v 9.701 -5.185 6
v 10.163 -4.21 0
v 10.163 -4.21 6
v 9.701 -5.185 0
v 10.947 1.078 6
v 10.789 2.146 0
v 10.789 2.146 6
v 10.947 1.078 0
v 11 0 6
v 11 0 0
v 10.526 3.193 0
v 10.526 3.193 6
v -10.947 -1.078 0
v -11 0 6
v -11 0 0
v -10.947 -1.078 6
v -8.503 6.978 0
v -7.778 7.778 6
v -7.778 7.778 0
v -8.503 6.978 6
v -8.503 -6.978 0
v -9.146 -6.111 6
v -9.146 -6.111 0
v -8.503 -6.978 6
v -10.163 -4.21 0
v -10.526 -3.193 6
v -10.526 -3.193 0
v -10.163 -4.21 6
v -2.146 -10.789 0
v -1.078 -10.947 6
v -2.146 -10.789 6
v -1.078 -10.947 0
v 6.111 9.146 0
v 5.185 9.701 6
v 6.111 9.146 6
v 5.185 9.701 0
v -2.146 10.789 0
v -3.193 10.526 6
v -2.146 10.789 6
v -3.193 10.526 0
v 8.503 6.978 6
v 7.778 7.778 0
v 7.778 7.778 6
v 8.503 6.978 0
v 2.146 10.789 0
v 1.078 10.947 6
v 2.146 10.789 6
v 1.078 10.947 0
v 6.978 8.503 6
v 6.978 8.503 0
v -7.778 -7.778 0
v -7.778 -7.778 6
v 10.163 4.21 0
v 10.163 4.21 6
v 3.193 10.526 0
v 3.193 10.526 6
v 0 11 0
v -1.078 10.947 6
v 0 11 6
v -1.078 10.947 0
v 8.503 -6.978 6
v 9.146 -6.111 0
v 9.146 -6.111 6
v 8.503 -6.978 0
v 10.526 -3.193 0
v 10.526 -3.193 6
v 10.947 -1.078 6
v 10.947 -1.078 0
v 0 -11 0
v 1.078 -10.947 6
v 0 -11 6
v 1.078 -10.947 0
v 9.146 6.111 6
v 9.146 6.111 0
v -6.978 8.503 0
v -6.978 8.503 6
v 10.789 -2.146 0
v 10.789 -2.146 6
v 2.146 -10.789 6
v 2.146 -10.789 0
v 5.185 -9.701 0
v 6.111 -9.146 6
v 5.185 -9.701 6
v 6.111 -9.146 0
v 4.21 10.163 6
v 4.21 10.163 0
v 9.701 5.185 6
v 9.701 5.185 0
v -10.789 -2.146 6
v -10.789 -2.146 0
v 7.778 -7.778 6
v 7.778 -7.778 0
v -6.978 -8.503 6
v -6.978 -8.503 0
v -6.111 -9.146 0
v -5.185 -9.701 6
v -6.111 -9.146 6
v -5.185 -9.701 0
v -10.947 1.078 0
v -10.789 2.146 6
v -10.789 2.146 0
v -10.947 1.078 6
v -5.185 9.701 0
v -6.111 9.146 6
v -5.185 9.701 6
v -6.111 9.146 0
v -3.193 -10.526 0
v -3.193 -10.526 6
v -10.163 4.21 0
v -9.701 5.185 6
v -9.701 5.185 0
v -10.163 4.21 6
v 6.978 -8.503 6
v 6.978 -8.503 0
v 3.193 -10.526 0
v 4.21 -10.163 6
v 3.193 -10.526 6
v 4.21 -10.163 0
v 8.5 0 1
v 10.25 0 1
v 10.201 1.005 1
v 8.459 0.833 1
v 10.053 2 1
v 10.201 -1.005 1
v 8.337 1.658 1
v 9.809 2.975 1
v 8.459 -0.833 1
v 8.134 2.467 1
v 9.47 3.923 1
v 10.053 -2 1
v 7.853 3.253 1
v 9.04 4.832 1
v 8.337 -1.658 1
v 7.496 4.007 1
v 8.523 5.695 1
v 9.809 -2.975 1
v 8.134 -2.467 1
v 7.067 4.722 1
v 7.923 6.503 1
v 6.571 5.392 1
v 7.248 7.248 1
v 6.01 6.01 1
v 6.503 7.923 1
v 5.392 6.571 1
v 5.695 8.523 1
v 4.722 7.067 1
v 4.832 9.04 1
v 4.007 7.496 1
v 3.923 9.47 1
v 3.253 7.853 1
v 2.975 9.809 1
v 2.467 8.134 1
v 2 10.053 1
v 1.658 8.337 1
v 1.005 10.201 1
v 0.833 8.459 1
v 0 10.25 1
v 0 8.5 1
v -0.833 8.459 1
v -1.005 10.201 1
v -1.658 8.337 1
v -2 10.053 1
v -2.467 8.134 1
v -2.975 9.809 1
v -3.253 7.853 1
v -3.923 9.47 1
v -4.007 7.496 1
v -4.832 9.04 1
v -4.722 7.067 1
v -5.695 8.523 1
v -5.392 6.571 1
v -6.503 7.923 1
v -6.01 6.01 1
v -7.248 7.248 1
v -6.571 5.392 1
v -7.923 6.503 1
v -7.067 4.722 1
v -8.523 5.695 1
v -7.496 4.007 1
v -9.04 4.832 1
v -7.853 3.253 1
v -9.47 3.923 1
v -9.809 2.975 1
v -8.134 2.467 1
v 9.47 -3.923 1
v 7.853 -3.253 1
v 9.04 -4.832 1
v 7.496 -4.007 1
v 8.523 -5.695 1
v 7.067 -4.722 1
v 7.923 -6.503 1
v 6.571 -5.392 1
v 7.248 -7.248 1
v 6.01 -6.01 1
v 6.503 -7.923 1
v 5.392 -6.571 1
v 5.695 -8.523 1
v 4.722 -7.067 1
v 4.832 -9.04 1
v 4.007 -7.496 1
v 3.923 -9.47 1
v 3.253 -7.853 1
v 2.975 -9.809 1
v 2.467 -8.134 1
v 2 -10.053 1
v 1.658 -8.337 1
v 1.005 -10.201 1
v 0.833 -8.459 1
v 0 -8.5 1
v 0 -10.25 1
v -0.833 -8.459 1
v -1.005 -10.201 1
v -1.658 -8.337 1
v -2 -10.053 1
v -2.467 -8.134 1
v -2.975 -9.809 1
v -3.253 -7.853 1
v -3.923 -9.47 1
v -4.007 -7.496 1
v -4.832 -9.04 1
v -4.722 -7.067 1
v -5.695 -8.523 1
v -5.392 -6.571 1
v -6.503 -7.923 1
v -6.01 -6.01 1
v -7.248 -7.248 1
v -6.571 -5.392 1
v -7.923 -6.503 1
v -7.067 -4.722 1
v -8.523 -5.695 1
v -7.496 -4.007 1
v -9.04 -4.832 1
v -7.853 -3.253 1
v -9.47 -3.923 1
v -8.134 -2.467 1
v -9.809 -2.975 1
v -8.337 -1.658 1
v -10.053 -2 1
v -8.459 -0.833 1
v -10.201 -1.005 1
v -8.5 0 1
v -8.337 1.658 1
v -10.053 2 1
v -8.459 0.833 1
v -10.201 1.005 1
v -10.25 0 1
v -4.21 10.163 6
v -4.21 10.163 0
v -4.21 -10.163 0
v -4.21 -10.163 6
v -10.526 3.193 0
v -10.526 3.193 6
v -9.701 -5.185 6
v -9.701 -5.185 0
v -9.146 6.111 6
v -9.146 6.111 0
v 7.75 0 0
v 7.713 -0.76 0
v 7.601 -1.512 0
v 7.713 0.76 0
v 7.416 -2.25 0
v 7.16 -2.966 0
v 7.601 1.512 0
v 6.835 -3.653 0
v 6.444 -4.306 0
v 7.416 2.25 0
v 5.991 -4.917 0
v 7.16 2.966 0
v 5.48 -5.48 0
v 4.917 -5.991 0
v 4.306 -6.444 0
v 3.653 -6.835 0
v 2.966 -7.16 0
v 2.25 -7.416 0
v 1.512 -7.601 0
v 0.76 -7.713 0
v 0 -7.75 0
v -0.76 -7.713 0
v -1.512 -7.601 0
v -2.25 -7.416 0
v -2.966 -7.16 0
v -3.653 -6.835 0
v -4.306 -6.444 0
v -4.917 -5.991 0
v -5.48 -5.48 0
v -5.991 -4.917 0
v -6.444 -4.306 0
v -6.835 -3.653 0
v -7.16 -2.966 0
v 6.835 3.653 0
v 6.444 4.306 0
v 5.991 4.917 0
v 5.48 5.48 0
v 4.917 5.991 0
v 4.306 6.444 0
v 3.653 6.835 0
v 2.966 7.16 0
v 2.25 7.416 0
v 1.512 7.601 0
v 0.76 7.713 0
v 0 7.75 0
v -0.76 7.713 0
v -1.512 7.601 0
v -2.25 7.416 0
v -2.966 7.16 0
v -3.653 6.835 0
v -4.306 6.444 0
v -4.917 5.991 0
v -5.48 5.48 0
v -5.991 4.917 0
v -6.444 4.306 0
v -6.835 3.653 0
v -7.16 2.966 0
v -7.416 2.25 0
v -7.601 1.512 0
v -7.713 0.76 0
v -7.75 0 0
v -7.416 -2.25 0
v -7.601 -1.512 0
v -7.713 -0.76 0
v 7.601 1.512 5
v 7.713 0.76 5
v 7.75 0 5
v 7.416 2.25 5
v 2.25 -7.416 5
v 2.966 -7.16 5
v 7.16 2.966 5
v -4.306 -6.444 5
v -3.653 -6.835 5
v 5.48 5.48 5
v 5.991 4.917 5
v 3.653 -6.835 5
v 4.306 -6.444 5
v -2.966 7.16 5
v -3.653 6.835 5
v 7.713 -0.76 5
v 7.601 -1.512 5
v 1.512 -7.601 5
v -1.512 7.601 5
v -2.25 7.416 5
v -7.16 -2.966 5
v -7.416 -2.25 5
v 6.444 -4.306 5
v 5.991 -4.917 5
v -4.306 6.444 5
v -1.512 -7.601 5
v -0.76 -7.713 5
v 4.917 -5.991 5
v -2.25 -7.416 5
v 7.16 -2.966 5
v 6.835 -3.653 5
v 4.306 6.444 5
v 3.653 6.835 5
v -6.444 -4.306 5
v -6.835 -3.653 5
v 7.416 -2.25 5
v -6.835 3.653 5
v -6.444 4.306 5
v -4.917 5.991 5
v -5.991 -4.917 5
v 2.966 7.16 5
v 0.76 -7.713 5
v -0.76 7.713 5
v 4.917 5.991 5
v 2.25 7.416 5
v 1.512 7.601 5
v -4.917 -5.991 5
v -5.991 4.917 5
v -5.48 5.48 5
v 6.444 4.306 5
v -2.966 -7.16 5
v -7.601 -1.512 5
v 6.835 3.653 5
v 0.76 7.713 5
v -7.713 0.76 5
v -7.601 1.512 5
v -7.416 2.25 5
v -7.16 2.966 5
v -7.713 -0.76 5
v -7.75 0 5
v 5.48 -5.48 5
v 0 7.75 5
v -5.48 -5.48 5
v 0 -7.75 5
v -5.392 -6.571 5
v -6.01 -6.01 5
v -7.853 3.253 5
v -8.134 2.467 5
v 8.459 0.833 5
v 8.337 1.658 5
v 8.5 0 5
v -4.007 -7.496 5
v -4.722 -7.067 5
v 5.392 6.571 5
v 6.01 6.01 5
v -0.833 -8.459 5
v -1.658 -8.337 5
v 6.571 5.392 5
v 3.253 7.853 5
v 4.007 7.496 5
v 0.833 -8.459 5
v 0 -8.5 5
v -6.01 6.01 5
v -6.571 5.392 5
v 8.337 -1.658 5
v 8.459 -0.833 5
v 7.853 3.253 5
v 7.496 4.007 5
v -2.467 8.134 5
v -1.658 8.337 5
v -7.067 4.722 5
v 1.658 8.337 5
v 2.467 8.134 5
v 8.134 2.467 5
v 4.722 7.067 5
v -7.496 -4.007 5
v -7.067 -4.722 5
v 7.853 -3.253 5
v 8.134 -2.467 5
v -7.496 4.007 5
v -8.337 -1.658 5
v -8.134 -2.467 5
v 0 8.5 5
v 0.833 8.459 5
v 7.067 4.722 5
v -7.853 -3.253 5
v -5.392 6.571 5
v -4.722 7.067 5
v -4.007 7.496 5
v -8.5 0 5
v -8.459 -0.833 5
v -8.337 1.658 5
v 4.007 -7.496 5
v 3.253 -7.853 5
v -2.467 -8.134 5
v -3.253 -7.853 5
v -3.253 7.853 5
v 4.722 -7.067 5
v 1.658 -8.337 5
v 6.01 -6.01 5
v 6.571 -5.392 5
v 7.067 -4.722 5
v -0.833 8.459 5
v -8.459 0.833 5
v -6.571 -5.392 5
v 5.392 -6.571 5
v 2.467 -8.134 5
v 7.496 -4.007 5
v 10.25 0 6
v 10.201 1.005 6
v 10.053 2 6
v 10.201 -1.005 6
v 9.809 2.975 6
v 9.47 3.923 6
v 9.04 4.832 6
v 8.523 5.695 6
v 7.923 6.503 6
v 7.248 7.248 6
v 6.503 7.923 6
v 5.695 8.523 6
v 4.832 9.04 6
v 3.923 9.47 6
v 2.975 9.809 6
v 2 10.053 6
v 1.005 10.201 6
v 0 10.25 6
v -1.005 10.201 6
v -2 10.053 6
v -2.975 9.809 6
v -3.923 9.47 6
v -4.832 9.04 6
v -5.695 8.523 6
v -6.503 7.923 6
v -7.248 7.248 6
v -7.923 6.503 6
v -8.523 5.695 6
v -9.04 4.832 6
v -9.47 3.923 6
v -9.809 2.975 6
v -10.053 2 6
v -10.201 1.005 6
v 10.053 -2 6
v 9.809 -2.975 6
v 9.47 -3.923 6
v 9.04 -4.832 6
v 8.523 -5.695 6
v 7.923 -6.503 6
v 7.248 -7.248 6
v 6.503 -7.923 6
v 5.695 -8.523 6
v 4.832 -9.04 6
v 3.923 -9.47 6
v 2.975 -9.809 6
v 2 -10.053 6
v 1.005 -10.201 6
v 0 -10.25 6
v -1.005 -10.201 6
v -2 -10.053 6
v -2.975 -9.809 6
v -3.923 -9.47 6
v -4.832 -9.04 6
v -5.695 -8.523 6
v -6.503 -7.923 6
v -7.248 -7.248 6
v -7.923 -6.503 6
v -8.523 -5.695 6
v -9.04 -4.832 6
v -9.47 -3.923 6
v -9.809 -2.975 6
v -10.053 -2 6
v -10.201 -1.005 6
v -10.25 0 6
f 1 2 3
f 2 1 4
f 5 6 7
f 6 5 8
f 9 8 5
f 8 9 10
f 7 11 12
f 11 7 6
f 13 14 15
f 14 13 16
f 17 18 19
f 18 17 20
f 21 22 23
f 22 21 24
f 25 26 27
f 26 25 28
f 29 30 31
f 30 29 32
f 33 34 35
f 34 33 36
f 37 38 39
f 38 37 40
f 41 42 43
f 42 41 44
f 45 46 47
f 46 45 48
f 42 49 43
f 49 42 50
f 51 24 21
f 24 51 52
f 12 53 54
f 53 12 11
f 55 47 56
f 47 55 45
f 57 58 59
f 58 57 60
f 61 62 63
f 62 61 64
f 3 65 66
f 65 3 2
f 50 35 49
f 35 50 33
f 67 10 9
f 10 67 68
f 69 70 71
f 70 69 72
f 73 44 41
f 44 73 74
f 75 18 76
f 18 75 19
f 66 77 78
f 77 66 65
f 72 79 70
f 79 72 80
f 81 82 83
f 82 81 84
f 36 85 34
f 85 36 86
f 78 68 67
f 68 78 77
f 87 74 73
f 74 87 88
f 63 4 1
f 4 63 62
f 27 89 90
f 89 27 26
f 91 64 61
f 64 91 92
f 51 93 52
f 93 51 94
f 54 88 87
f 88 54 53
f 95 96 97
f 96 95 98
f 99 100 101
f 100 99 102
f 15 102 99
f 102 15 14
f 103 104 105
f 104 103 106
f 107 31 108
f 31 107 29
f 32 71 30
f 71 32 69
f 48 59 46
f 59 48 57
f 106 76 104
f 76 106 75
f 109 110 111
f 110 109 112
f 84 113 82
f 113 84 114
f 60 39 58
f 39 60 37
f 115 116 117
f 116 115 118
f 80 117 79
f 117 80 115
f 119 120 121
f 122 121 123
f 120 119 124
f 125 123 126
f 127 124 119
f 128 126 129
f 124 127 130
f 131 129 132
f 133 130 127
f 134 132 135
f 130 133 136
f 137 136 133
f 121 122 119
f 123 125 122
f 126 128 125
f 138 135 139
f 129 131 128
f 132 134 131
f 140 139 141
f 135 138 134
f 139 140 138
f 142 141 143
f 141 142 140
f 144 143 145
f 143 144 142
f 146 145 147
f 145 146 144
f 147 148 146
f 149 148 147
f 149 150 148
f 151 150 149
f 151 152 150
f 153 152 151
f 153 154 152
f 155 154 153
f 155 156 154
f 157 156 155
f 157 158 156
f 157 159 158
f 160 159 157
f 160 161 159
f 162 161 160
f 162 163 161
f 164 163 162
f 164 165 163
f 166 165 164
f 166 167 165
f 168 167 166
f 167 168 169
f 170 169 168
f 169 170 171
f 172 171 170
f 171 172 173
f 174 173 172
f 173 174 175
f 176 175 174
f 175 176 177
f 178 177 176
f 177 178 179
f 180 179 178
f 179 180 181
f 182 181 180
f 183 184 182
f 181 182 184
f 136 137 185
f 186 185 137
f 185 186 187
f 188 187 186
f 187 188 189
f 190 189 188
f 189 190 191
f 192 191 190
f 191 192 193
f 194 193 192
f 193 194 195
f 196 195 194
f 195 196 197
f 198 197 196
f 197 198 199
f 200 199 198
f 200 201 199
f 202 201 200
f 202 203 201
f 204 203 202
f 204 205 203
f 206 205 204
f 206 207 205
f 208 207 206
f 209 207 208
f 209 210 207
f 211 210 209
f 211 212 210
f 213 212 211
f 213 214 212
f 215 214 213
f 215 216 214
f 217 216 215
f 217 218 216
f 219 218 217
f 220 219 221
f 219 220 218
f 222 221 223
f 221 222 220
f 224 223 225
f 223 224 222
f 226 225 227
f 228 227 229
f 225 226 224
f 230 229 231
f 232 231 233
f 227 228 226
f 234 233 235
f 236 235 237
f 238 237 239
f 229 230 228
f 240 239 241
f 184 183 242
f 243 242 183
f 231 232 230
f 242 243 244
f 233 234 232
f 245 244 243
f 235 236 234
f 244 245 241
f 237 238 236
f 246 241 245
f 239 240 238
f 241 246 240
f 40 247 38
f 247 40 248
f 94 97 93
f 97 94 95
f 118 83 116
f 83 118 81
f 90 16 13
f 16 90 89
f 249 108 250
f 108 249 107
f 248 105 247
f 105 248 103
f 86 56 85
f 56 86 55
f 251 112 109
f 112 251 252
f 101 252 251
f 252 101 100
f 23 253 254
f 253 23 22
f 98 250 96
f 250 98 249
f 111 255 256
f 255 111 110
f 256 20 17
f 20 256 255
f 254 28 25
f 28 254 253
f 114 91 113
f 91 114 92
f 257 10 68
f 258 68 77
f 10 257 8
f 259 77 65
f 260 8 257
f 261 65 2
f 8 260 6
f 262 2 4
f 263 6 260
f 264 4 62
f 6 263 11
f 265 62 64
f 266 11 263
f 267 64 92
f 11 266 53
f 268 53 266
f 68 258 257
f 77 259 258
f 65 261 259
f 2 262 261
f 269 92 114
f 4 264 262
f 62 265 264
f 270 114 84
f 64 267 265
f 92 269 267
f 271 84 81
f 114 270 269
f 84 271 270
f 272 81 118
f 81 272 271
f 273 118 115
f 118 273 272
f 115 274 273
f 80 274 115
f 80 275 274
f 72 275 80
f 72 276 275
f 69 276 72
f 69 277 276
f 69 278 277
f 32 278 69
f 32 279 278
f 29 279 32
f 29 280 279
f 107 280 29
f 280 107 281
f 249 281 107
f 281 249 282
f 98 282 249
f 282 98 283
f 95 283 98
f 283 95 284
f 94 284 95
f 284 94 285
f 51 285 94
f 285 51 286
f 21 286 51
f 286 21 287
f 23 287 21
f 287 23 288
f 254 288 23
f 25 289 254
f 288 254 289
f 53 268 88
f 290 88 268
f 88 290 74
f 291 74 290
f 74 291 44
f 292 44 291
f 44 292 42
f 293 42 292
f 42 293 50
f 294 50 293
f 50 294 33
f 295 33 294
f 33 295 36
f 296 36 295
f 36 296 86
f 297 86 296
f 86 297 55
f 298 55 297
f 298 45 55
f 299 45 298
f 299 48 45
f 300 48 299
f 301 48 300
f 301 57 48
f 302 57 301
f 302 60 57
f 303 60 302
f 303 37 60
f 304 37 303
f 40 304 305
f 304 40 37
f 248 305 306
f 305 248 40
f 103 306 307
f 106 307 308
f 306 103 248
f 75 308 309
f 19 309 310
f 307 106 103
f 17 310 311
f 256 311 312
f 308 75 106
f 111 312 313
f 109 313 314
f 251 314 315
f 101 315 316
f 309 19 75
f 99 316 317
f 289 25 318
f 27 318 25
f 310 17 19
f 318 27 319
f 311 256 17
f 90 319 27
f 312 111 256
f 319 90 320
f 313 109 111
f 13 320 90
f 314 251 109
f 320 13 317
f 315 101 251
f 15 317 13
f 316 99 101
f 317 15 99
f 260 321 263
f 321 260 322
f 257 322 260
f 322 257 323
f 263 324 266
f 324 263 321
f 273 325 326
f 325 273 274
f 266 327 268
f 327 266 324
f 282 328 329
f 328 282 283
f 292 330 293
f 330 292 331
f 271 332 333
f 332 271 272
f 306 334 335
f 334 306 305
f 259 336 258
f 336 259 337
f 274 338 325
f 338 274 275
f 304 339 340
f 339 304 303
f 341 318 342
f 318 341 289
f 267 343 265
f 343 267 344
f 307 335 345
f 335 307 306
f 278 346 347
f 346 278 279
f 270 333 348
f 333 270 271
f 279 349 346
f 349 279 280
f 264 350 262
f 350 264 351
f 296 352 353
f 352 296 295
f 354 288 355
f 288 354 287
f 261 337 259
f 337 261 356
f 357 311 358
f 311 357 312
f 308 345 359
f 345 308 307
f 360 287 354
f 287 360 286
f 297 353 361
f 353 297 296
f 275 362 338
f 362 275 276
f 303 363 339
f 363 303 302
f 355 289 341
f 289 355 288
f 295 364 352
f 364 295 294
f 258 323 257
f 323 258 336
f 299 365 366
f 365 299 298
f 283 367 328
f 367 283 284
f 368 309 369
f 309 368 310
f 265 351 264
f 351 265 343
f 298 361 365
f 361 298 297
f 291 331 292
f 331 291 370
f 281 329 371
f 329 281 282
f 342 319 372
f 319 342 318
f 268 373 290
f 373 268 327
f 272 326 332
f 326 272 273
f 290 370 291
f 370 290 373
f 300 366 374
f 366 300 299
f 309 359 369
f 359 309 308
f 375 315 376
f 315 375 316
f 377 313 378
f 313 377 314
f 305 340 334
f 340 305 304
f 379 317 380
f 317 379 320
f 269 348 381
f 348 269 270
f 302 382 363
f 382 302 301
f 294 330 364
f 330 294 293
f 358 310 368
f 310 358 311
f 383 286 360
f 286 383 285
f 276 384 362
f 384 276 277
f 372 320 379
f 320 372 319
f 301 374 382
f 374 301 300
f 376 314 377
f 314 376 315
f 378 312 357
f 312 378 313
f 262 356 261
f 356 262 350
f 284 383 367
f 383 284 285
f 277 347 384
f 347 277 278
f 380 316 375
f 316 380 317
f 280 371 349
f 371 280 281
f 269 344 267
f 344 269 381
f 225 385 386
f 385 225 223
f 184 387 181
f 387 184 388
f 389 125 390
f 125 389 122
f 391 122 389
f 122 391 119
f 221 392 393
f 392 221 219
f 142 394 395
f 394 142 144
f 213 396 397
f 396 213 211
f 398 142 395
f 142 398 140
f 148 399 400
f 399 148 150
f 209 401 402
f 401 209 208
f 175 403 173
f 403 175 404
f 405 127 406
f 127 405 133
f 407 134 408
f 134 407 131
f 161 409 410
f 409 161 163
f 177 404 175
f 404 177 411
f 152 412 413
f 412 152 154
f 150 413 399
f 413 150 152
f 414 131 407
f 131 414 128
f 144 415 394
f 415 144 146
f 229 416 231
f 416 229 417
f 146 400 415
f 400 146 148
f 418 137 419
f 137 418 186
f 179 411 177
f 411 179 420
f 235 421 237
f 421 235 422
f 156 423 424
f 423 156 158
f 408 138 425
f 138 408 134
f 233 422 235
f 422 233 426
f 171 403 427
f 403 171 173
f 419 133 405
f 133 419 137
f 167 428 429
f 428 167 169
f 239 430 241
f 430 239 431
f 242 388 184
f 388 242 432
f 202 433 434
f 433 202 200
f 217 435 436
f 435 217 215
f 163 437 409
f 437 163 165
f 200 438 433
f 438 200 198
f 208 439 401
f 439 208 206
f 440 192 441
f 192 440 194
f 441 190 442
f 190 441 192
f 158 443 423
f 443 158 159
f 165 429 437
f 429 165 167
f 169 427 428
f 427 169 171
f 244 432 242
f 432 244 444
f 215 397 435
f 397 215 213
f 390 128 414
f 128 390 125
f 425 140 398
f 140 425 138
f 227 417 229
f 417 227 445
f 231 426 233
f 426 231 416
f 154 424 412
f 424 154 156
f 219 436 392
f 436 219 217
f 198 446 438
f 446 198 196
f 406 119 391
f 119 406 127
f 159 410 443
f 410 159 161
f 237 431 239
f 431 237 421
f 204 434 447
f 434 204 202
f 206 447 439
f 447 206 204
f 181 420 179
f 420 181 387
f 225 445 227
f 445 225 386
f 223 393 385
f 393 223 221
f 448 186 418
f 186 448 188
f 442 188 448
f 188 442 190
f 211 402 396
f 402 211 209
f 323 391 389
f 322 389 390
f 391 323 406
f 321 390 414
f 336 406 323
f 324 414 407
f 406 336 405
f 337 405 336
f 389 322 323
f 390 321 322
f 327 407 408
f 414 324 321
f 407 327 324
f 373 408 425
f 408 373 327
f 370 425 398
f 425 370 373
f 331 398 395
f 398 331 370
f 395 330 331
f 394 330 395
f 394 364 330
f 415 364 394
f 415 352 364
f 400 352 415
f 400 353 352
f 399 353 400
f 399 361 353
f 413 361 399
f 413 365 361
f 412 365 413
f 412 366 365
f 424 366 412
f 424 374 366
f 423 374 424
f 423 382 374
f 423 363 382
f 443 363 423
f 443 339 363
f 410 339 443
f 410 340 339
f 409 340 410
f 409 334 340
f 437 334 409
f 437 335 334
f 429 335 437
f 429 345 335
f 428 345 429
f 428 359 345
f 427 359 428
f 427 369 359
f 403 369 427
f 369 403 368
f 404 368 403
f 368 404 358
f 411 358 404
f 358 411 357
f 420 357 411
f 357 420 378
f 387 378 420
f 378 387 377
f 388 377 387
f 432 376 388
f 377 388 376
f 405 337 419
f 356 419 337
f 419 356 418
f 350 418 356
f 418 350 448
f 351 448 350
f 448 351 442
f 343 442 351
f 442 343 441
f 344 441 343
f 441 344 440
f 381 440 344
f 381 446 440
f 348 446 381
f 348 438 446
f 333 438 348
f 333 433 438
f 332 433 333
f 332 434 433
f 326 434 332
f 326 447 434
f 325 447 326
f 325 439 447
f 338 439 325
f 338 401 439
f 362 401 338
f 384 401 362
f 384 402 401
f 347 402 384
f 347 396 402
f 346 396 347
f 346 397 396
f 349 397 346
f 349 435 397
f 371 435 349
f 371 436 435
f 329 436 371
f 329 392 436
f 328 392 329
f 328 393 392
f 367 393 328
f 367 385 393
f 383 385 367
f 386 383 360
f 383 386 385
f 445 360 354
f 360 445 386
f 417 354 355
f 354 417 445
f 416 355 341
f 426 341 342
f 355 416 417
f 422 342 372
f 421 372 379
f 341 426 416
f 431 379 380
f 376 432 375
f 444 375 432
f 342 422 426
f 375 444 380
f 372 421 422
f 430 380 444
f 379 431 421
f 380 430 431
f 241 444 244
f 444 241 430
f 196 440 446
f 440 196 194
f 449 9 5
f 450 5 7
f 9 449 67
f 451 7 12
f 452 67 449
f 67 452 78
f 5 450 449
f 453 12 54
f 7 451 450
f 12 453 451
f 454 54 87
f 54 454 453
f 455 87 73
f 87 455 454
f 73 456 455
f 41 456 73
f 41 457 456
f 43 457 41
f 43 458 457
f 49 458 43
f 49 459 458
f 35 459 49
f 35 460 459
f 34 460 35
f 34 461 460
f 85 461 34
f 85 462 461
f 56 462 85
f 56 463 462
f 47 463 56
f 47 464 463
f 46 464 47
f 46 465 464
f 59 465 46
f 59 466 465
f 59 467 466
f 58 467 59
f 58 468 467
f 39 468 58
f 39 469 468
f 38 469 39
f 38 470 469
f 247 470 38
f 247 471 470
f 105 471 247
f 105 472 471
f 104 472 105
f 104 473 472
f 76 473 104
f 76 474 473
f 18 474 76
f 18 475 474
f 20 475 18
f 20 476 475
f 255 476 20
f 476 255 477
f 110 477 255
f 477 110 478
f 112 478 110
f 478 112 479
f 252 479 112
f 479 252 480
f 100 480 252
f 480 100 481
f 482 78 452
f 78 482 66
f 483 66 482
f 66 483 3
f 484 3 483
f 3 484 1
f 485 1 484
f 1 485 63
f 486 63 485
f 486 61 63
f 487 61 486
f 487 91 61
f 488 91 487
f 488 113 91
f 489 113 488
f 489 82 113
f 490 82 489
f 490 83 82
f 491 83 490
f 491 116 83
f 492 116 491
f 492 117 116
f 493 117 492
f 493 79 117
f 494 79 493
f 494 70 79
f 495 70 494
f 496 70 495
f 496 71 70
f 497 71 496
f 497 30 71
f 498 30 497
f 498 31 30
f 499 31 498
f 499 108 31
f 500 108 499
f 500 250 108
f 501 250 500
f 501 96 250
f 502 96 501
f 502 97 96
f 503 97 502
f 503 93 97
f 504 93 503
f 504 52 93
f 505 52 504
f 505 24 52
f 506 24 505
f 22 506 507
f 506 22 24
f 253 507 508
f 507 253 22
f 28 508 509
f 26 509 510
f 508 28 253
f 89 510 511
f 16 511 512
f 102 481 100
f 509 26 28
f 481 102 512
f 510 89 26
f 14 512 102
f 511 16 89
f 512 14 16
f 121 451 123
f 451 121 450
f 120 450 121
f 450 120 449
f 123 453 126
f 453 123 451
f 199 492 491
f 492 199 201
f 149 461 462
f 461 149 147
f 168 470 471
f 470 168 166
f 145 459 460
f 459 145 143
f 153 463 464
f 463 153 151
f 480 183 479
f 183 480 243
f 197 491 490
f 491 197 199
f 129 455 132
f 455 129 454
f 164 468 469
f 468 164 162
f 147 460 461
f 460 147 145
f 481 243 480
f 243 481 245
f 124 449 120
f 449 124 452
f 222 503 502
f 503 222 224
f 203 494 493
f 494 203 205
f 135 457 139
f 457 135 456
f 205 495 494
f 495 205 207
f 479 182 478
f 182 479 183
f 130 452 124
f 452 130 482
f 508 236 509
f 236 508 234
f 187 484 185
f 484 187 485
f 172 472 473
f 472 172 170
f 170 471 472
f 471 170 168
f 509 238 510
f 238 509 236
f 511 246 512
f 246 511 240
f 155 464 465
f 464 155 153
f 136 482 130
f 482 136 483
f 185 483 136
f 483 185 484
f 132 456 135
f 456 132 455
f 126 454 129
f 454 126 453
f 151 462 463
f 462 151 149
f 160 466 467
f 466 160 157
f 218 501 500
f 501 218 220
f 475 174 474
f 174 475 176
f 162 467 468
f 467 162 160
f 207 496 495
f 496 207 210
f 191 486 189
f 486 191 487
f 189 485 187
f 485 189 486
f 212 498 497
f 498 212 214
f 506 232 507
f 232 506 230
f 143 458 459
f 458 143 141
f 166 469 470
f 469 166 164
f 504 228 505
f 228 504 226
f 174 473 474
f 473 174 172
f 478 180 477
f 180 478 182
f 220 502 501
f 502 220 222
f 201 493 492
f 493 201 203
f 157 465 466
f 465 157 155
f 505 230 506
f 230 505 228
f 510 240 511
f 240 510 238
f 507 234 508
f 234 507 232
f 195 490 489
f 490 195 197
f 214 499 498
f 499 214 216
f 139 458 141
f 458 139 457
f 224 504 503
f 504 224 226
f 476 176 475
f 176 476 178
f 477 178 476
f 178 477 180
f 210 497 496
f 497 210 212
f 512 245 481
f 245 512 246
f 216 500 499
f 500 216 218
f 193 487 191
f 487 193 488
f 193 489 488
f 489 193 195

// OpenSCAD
// Generated by SolidPython 1.1.3 on 2024-03-05 17:38:12


union() {
	translate(v = [0, 0, 0.5000000000]) {
		difference() {
			cylinder($fn = 64, center = true, h = 1, r = 11.0000000000);
			cylinder($fn = 64, center = true, h = 1, r = 7.7500000000);
		}
	}
	difference() {
		translate(v = [0, 0, 3.5000000000]) {
			cylinder($fn = 64, center = true, h = 5, r = 11.0000000000);
		}
		translate(v = [0, 0, 3.5000000000]) {
			cylinder($fn = 64, center = true, h = 5, r = 10.2500000000);
		}
	}
	difference() {
		translate(v = [0, 0, 3.0000000000]) {
			cylinder($fn = 64, center = true, h = 4, r = 8.5000000000);
		}
		translate(v = [0, 0, 3.0000000000]) {
			cylinder($fn = 64, center = true, h = 4, r = 7.7500000000);
		}
	}
}
/***********************************************
*********      SolidPython code:      **********
************************************************
 
import solid
import os.path as osp
import os 

def save_model(model,base_path,base_name):
    if not osp.exists(base_path):
        os.makedirs(base_path)
    scad_path=osp.join(base_path,base_name+".scad")
    solid.scad_render_to_file(model,osp.join(scad_path))


version="final_cnc"
base_path="./designs/plasma_racks/4mm_well_0.5inch_diam_device_"+version+"/"
base_name="single_adapter_"+version
adapter_diam=22
water_well_diam_out=20.5
water_well_diam_in=17
device_diam=15.5
water_well_height=4
adapter_height=5
floor_thickness=1

#floor
floor = solid.cylinder(r=adapter_diam/2.0, h=floor_thickness, segments=64, center = True)
floor_hole = solid.cylinder(r=device_diam/2.0, h=floor_thickness, segments=64, center = True)
floor = solid.difference()(floor,floor_hole)
floor = solid.translate([0,0,floor_thickness/2.0])(floor)


#plate wells
well = solid.cylinder(r=adapter_diam/2.0, h=adapter_height, segments=64, center = True)
well = solid.translate([0,0,adapter_height/2.0+floor_thickness])(well)
well_inner = solid.cylinder(r=water_well_diam_out/2.0, h=adapter_height, segments=64, center = True)
well_inner = solid.translate([0,0,adapter_height/2.0+floor_thickness])(well_inner)
well = solid.difference()(well,well_inner)


##water wells
water_well_out = solid.cylinder(r=water_well_diam_in/2.0, h=water_well_height, segments=64, center = True)
water_well_out = solid.translate([0,0,water_well_height/2.0+floor_thickness])(water_well_out)
water_well_in = solid.cylinder(r=device_diam/2.0, h=water_well_height, segments=64, center = True)
water_well_in = solid.translate([0,0,water_well_height/2.0+floor_thickness])(water_well_in)
water_well=solid.difference()(water_well_out,water_well_in)

adapter= solid.union()(floor,well,water_well)


save_model(adapter,base_path,base_name)
 
 
************************************************/
